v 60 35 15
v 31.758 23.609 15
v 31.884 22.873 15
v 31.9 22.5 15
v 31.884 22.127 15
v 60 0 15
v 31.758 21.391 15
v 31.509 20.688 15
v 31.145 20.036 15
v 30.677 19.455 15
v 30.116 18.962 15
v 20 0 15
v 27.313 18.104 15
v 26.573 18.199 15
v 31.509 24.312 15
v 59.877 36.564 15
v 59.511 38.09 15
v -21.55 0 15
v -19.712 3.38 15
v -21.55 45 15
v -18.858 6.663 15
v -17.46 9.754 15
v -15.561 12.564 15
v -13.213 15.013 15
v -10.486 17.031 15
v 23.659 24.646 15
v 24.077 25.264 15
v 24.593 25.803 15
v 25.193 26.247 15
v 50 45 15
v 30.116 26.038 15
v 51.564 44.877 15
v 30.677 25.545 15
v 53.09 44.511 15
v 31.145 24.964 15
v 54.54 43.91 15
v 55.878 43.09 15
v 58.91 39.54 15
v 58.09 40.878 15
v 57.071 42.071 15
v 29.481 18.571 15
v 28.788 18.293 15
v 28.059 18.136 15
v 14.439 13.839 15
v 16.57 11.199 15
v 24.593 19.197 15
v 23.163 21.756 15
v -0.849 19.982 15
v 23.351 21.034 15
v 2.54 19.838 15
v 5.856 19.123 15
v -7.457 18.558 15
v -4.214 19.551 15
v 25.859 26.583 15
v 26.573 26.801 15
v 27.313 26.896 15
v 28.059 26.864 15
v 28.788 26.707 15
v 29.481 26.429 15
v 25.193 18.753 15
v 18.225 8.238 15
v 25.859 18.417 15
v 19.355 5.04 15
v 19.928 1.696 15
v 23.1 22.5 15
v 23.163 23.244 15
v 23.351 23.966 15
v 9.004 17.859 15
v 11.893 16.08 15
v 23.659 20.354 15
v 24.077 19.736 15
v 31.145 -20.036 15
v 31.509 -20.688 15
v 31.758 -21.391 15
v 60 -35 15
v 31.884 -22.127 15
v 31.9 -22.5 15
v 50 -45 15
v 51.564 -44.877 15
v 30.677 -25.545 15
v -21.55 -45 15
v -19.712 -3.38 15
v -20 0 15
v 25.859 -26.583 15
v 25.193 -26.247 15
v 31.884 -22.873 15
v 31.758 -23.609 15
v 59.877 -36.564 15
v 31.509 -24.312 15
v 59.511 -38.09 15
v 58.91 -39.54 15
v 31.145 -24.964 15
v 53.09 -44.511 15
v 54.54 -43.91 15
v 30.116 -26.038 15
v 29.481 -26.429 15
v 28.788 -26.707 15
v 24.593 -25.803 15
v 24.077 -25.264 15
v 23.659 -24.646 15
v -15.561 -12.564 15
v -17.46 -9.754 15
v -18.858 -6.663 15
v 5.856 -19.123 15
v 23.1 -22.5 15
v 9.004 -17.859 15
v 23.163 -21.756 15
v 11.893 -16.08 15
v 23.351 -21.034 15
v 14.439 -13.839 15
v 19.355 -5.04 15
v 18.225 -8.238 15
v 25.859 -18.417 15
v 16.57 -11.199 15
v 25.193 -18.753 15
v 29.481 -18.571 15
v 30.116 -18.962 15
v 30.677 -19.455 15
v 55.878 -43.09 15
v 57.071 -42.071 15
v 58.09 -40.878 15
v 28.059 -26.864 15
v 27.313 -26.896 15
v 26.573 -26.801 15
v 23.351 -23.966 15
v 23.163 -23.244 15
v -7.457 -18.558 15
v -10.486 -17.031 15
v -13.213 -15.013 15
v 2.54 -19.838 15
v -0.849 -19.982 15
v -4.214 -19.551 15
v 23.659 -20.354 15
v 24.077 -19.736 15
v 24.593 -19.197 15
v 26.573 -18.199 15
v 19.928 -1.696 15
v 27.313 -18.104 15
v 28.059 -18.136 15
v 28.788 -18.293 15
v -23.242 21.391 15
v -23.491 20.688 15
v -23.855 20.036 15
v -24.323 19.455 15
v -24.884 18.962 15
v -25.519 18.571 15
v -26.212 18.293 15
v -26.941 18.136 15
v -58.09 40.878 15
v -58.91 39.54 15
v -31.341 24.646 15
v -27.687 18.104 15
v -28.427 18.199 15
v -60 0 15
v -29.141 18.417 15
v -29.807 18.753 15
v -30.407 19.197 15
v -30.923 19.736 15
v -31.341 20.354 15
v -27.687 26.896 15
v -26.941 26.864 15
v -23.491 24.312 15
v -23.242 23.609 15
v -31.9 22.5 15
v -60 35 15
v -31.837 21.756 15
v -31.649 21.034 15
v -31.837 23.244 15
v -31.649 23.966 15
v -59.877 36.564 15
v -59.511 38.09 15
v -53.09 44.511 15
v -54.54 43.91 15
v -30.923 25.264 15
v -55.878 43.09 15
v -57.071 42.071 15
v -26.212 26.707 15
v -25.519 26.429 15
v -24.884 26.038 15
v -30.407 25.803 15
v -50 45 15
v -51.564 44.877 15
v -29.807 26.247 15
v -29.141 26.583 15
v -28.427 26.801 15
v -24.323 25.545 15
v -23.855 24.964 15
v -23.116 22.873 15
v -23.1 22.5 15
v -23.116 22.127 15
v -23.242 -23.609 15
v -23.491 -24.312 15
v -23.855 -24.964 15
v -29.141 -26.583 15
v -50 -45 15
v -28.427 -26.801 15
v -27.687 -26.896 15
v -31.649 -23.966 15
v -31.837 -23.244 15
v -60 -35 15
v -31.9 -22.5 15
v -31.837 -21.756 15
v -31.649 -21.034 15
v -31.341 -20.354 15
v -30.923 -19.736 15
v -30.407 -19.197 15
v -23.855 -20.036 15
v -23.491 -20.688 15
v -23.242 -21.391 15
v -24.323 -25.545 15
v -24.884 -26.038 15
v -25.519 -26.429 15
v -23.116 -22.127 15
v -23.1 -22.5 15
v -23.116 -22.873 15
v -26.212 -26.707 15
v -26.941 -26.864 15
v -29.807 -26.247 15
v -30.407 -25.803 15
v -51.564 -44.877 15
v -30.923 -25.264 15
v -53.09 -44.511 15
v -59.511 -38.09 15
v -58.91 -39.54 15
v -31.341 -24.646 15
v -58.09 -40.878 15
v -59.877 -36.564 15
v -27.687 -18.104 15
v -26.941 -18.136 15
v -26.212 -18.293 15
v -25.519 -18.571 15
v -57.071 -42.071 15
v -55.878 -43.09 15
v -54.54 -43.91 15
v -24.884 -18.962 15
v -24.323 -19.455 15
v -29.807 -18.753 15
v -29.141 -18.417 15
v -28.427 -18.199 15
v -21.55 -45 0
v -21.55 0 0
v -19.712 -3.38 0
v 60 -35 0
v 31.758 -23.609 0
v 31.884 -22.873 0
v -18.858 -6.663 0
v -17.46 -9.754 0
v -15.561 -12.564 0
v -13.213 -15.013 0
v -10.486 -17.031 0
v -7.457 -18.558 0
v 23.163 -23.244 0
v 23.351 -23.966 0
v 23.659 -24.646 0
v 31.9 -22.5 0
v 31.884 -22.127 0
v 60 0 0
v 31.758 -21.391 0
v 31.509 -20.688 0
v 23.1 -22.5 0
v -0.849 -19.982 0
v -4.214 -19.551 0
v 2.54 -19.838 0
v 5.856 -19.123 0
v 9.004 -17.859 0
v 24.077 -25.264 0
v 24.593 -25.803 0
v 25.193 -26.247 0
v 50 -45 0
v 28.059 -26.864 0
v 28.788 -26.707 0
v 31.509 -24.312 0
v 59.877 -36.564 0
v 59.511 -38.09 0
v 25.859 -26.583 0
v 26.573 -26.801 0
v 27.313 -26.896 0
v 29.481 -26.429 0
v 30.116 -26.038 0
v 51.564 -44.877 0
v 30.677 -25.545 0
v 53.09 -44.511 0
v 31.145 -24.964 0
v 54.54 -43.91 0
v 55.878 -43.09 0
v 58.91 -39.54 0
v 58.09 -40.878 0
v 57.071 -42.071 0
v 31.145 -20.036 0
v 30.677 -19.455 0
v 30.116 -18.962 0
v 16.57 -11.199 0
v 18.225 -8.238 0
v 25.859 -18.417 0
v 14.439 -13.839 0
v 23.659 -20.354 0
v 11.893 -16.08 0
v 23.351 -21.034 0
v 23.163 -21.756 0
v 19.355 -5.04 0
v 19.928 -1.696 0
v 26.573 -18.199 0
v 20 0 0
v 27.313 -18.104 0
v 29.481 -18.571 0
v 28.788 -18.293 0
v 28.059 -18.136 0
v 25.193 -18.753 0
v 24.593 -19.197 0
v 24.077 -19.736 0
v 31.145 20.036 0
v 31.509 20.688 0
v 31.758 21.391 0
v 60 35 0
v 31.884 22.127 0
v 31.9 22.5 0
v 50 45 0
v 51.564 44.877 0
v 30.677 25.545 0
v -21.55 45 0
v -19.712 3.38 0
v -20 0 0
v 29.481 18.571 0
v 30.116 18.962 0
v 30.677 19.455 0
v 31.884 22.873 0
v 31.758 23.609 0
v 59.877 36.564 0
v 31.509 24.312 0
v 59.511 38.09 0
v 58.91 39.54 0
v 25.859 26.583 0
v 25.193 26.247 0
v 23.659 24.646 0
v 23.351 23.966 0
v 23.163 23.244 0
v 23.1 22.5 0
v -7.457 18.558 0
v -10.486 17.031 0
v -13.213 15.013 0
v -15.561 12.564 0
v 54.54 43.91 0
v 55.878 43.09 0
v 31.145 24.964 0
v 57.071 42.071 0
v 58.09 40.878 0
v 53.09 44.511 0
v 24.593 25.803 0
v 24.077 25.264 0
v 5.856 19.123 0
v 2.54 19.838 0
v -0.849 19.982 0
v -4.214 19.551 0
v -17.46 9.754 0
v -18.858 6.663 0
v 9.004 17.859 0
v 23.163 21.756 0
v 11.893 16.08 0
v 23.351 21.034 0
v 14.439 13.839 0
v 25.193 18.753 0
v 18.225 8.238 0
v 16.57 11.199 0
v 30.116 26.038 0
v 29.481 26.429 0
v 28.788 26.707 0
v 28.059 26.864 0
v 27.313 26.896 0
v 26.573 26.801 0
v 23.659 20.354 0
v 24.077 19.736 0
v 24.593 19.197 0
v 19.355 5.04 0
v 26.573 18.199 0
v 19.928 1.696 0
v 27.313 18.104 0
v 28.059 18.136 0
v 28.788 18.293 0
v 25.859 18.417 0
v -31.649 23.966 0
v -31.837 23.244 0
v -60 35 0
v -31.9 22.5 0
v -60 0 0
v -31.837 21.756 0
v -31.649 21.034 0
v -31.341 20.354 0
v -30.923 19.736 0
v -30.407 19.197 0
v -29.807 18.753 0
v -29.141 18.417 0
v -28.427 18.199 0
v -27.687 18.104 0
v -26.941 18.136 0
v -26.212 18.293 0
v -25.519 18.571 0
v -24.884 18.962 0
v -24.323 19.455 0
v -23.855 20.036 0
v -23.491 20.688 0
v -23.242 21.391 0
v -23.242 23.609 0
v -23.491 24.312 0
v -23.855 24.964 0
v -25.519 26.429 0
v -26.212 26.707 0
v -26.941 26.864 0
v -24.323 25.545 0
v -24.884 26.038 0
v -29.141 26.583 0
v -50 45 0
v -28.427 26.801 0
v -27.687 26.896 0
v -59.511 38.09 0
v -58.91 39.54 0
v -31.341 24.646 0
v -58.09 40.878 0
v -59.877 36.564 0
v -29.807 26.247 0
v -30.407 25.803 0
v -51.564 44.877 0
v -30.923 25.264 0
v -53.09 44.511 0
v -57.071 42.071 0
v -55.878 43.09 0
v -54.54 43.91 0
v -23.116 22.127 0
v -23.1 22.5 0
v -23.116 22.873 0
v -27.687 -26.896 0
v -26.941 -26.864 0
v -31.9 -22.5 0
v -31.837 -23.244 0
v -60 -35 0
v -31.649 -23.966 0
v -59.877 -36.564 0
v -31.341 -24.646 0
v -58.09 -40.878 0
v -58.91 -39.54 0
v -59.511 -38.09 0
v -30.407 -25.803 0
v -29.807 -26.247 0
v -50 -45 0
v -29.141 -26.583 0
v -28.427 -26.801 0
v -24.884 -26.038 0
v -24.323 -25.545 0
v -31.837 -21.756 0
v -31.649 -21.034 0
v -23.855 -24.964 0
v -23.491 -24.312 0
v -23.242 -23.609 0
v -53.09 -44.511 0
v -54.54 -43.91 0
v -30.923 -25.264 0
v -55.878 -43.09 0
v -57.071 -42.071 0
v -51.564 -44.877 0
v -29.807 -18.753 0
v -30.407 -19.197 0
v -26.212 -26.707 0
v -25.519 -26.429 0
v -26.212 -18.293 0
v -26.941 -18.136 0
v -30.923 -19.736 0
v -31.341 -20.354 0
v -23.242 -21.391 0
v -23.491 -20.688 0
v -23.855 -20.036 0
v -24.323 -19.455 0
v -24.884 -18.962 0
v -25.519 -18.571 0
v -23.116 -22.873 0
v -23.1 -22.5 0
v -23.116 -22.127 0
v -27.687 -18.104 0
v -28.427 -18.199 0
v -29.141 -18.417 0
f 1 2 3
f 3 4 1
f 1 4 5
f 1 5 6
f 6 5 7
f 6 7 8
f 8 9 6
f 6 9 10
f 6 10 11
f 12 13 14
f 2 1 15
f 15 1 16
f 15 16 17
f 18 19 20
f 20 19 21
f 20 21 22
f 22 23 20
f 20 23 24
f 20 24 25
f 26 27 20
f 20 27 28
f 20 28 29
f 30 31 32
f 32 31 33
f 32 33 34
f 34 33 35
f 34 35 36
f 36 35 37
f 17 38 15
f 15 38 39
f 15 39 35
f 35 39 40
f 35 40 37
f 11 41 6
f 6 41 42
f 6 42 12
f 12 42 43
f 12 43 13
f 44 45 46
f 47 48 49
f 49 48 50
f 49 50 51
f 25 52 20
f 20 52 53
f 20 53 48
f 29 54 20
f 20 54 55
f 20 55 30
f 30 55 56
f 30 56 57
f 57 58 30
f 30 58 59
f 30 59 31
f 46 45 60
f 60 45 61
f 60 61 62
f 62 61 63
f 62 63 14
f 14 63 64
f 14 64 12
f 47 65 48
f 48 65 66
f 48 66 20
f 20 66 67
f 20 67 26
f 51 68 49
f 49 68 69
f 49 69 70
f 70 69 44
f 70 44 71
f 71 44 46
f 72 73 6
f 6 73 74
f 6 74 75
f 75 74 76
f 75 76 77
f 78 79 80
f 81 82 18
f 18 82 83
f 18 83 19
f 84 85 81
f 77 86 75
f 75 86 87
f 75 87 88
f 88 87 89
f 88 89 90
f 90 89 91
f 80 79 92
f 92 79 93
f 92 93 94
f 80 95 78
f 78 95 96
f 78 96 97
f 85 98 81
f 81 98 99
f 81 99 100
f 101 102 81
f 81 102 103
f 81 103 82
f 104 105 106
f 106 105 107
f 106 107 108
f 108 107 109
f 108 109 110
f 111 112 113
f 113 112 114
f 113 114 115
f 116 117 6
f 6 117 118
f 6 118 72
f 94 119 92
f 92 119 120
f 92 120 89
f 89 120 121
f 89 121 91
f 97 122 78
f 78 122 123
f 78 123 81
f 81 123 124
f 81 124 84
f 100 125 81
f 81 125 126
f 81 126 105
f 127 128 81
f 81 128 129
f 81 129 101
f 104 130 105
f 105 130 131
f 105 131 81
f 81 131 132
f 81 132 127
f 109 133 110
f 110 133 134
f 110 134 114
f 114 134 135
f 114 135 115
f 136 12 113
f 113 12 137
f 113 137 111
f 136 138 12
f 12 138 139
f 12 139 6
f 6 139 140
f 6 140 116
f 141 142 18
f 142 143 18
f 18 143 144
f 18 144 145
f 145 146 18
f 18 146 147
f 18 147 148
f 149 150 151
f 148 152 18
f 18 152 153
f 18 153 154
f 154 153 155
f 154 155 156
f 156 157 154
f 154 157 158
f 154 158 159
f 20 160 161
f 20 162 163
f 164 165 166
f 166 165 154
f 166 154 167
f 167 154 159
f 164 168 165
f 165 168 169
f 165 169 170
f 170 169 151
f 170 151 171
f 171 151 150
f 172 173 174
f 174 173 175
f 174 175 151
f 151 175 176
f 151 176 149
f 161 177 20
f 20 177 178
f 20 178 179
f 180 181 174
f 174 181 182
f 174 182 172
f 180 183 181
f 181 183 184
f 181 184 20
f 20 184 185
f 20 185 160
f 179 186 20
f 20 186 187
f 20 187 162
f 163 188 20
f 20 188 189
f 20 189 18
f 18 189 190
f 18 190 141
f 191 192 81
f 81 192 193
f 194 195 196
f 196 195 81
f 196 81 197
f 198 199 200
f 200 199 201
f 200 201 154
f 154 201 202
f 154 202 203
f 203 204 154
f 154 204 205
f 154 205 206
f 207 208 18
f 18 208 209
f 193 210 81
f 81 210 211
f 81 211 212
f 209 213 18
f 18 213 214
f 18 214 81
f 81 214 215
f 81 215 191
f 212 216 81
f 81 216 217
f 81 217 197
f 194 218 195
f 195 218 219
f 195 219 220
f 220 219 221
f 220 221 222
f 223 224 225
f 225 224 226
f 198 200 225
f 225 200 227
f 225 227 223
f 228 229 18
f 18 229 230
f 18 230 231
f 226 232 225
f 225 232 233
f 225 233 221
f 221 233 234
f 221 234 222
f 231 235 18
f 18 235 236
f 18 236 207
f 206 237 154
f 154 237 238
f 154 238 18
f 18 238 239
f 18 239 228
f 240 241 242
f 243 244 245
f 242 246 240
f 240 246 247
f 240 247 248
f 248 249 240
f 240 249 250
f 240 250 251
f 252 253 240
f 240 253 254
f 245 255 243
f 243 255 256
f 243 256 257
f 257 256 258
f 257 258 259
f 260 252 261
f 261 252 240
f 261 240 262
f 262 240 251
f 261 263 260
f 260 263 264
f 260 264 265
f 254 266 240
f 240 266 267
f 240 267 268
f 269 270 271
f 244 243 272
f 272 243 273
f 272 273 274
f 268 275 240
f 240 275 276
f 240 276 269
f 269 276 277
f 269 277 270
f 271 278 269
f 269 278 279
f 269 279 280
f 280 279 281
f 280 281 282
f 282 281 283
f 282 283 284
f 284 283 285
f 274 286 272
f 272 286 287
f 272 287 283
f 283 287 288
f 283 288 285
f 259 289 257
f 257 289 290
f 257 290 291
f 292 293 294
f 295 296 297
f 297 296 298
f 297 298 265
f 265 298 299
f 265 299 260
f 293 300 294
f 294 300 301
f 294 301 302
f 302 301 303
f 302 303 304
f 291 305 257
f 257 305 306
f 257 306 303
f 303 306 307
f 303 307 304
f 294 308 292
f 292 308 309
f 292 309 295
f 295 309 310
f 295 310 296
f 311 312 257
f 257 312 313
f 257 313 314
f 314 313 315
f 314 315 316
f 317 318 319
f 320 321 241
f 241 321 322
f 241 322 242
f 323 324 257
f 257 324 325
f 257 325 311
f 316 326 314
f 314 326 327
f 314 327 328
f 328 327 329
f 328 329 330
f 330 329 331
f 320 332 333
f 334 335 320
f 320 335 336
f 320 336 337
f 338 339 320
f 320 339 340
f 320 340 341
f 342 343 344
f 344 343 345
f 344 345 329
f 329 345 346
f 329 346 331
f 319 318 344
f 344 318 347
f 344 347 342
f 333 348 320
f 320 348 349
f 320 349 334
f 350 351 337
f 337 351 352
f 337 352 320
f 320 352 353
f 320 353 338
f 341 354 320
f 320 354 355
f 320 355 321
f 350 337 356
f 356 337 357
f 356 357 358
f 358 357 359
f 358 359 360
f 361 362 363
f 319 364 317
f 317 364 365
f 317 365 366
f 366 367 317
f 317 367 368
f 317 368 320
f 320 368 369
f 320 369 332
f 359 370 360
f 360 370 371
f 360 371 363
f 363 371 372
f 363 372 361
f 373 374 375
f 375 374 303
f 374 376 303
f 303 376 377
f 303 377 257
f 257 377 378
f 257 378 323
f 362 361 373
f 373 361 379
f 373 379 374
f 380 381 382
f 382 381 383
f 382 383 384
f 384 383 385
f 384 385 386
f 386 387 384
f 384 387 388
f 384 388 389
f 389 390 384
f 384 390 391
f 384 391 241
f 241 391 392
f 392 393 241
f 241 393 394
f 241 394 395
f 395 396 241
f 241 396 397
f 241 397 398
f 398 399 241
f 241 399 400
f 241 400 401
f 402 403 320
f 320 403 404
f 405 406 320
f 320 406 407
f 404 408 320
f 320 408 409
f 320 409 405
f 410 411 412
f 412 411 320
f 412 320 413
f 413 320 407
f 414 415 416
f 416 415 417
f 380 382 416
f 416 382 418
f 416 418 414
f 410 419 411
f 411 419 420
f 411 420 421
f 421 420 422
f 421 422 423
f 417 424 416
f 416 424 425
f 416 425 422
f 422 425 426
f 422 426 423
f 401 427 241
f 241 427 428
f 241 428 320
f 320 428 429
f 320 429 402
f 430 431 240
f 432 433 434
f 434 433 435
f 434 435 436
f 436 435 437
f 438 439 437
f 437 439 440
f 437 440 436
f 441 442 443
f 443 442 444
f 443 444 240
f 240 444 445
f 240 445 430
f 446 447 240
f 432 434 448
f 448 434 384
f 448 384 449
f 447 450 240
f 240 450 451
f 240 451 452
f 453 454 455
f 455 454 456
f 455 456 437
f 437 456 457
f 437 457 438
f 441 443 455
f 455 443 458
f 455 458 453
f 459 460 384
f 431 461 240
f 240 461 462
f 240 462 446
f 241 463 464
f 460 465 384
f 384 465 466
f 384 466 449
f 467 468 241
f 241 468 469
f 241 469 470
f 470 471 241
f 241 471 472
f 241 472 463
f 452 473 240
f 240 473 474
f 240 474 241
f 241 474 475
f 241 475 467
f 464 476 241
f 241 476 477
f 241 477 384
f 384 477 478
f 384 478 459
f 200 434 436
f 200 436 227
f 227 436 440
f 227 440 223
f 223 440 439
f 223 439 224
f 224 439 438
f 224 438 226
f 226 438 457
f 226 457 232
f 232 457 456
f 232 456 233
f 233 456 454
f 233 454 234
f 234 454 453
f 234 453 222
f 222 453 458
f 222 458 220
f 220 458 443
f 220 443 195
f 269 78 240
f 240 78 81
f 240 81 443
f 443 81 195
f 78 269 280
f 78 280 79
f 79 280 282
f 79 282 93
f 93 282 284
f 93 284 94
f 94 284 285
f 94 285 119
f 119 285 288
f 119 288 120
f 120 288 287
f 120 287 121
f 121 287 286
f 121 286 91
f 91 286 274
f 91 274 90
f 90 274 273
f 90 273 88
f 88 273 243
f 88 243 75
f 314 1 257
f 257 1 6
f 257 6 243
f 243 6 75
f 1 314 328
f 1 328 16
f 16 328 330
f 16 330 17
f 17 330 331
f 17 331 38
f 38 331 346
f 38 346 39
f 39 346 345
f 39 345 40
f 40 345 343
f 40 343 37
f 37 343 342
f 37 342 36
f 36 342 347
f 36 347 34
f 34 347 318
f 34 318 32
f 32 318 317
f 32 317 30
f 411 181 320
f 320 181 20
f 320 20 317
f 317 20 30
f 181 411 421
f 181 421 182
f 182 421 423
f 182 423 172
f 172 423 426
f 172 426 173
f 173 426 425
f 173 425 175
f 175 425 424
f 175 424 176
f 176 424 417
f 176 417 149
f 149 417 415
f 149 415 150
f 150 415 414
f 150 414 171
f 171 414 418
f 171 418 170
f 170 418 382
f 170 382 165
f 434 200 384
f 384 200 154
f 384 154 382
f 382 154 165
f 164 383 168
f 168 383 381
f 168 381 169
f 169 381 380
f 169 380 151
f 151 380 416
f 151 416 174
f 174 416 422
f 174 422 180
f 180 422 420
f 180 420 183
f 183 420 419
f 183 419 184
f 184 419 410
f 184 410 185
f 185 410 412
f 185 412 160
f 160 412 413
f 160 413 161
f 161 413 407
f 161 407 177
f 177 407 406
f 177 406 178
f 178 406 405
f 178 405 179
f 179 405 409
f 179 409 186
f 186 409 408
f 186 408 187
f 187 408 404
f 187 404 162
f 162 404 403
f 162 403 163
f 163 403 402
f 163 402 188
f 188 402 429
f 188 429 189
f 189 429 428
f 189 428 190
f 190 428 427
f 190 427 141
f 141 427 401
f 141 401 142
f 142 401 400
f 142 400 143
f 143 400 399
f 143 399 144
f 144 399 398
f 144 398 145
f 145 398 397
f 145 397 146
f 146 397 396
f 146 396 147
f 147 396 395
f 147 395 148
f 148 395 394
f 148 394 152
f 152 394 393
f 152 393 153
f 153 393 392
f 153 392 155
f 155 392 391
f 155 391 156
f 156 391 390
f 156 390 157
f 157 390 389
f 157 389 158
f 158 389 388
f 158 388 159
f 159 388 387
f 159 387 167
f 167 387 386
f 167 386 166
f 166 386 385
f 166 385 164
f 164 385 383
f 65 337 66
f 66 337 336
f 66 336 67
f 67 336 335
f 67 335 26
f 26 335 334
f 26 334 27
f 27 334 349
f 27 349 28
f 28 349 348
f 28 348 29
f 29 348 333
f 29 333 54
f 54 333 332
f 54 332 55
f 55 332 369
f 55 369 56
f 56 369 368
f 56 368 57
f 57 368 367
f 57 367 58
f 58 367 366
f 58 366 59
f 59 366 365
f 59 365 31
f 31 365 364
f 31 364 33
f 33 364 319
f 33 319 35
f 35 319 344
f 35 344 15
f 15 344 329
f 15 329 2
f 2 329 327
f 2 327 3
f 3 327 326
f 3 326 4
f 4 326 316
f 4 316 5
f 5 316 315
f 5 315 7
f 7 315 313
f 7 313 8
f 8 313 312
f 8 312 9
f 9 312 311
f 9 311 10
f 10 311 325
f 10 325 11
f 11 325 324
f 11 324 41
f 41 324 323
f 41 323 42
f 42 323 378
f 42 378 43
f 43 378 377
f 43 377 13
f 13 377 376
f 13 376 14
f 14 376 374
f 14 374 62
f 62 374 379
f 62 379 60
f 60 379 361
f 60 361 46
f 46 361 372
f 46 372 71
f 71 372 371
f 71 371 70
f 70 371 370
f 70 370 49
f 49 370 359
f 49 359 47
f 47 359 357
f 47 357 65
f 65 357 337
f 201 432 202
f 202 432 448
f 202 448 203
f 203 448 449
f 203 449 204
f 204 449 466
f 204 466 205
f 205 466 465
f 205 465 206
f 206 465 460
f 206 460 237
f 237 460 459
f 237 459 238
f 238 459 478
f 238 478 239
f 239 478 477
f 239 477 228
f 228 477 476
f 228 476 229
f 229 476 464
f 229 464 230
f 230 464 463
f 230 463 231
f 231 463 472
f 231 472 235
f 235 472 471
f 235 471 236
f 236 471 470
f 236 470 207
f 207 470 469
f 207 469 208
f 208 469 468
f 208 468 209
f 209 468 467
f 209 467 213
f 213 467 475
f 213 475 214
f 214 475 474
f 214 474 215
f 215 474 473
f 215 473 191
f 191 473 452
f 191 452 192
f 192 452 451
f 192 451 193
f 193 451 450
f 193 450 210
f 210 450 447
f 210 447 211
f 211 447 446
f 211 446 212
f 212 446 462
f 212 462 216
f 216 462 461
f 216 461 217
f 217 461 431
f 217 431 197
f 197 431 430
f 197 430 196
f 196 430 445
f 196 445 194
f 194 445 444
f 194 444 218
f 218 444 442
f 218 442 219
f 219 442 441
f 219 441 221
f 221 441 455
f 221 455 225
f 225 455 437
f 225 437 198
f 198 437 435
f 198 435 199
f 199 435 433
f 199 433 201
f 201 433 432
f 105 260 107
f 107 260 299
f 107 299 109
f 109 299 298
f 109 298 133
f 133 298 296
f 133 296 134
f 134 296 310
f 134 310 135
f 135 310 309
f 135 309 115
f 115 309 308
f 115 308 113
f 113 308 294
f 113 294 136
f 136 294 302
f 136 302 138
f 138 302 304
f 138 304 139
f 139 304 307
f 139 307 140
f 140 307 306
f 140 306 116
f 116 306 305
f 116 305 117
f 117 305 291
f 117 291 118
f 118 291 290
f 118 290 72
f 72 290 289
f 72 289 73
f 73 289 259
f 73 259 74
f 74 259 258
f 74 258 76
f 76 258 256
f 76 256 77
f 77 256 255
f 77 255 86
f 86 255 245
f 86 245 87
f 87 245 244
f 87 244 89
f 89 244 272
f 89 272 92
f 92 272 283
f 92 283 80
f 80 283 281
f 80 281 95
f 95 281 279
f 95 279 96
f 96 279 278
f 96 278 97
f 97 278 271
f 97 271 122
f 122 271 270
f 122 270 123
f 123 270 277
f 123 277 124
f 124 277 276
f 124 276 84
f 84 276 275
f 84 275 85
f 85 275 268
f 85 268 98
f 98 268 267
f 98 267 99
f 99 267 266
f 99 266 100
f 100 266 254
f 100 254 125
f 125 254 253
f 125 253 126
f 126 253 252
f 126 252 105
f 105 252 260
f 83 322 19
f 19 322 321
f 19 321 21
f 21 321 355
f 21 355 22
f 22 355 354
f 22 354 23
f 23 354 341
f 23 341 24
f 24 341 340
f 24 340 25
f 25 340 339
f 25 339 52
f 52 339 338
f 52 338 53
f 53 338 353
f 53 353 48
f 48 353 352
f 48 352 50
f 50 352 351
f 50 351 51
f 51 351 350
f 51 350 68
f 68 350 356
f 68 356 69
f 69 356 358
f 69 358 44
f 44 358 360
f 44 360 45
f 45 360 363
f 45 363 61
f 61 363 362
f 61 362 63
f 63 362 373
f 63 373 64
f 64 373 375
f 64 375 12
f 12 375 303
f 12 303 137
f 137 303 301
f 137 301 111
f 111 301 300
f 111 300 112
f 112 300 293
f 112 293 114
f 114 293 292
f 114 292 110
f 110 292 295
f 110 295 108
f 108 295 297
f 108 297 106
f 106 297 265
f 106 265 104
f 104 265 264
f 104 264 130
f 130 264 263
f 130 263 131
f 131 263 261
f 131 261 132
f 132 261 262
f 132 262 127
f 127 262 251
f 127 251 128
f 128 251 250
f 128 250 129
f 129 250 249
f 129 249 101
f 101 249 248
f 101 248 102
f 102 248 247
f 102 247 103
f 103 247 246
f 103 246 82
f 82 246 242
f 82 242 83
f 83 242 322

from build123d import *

# Parameters (mm, degrees)
SKETCH1_R           = 4.4
SKETCH1_R_2         = 20
BOSS_EXTRUDE1_DEPTH = 15


with BuildPart() as part:
    # Sketch1 → Boss-Extrude1 (new body)
    with BuildSketch(Plane.XY):
        with BuildLine():
            Line((-50, 45), (50, 45))
            ThreePointArc((50, 45), (57.071067812, 42.071067812), (60, 35))
            Line((60, 35), (60, -35))
            ThreePointArc((60, -35), (57.071067812, -42.071067812), (50, -45))
            Line((50, -45), (-50, -45))
            ThreePointArc((-50, -45), (-57.071067812, -42.071067812), (-60, -35))
            Line((-60, -35), (-60, 35))
            ThreePointArc((-60, 35), (-57.071067812, 42.071067812), (-50, 45))
        make_face()
        with Locations((-27.5, 22.5)):
            Circle(SKETCH1_R, mode=Mode.SUBTRACT)
        with Locations((27.5, 22.5)):
            Circle(SKETCH1_R, mode=Mode.SUBTRACT)
        with Locations((-27.5, -22.5)):
            Circle(SKETCH1_R, mode=Mode.SUBTRACT)
        with Locations((27.5, -22.5)):
            Circle(SKETCH1_R, mode=Mode.SUBTRACT)
        Circle(SKETCH1_R_2, mode=Mode.SUBTRACT)
    extrude(amount=BOSS_EXTRUDE1_DEPTH)


solid = part.part
